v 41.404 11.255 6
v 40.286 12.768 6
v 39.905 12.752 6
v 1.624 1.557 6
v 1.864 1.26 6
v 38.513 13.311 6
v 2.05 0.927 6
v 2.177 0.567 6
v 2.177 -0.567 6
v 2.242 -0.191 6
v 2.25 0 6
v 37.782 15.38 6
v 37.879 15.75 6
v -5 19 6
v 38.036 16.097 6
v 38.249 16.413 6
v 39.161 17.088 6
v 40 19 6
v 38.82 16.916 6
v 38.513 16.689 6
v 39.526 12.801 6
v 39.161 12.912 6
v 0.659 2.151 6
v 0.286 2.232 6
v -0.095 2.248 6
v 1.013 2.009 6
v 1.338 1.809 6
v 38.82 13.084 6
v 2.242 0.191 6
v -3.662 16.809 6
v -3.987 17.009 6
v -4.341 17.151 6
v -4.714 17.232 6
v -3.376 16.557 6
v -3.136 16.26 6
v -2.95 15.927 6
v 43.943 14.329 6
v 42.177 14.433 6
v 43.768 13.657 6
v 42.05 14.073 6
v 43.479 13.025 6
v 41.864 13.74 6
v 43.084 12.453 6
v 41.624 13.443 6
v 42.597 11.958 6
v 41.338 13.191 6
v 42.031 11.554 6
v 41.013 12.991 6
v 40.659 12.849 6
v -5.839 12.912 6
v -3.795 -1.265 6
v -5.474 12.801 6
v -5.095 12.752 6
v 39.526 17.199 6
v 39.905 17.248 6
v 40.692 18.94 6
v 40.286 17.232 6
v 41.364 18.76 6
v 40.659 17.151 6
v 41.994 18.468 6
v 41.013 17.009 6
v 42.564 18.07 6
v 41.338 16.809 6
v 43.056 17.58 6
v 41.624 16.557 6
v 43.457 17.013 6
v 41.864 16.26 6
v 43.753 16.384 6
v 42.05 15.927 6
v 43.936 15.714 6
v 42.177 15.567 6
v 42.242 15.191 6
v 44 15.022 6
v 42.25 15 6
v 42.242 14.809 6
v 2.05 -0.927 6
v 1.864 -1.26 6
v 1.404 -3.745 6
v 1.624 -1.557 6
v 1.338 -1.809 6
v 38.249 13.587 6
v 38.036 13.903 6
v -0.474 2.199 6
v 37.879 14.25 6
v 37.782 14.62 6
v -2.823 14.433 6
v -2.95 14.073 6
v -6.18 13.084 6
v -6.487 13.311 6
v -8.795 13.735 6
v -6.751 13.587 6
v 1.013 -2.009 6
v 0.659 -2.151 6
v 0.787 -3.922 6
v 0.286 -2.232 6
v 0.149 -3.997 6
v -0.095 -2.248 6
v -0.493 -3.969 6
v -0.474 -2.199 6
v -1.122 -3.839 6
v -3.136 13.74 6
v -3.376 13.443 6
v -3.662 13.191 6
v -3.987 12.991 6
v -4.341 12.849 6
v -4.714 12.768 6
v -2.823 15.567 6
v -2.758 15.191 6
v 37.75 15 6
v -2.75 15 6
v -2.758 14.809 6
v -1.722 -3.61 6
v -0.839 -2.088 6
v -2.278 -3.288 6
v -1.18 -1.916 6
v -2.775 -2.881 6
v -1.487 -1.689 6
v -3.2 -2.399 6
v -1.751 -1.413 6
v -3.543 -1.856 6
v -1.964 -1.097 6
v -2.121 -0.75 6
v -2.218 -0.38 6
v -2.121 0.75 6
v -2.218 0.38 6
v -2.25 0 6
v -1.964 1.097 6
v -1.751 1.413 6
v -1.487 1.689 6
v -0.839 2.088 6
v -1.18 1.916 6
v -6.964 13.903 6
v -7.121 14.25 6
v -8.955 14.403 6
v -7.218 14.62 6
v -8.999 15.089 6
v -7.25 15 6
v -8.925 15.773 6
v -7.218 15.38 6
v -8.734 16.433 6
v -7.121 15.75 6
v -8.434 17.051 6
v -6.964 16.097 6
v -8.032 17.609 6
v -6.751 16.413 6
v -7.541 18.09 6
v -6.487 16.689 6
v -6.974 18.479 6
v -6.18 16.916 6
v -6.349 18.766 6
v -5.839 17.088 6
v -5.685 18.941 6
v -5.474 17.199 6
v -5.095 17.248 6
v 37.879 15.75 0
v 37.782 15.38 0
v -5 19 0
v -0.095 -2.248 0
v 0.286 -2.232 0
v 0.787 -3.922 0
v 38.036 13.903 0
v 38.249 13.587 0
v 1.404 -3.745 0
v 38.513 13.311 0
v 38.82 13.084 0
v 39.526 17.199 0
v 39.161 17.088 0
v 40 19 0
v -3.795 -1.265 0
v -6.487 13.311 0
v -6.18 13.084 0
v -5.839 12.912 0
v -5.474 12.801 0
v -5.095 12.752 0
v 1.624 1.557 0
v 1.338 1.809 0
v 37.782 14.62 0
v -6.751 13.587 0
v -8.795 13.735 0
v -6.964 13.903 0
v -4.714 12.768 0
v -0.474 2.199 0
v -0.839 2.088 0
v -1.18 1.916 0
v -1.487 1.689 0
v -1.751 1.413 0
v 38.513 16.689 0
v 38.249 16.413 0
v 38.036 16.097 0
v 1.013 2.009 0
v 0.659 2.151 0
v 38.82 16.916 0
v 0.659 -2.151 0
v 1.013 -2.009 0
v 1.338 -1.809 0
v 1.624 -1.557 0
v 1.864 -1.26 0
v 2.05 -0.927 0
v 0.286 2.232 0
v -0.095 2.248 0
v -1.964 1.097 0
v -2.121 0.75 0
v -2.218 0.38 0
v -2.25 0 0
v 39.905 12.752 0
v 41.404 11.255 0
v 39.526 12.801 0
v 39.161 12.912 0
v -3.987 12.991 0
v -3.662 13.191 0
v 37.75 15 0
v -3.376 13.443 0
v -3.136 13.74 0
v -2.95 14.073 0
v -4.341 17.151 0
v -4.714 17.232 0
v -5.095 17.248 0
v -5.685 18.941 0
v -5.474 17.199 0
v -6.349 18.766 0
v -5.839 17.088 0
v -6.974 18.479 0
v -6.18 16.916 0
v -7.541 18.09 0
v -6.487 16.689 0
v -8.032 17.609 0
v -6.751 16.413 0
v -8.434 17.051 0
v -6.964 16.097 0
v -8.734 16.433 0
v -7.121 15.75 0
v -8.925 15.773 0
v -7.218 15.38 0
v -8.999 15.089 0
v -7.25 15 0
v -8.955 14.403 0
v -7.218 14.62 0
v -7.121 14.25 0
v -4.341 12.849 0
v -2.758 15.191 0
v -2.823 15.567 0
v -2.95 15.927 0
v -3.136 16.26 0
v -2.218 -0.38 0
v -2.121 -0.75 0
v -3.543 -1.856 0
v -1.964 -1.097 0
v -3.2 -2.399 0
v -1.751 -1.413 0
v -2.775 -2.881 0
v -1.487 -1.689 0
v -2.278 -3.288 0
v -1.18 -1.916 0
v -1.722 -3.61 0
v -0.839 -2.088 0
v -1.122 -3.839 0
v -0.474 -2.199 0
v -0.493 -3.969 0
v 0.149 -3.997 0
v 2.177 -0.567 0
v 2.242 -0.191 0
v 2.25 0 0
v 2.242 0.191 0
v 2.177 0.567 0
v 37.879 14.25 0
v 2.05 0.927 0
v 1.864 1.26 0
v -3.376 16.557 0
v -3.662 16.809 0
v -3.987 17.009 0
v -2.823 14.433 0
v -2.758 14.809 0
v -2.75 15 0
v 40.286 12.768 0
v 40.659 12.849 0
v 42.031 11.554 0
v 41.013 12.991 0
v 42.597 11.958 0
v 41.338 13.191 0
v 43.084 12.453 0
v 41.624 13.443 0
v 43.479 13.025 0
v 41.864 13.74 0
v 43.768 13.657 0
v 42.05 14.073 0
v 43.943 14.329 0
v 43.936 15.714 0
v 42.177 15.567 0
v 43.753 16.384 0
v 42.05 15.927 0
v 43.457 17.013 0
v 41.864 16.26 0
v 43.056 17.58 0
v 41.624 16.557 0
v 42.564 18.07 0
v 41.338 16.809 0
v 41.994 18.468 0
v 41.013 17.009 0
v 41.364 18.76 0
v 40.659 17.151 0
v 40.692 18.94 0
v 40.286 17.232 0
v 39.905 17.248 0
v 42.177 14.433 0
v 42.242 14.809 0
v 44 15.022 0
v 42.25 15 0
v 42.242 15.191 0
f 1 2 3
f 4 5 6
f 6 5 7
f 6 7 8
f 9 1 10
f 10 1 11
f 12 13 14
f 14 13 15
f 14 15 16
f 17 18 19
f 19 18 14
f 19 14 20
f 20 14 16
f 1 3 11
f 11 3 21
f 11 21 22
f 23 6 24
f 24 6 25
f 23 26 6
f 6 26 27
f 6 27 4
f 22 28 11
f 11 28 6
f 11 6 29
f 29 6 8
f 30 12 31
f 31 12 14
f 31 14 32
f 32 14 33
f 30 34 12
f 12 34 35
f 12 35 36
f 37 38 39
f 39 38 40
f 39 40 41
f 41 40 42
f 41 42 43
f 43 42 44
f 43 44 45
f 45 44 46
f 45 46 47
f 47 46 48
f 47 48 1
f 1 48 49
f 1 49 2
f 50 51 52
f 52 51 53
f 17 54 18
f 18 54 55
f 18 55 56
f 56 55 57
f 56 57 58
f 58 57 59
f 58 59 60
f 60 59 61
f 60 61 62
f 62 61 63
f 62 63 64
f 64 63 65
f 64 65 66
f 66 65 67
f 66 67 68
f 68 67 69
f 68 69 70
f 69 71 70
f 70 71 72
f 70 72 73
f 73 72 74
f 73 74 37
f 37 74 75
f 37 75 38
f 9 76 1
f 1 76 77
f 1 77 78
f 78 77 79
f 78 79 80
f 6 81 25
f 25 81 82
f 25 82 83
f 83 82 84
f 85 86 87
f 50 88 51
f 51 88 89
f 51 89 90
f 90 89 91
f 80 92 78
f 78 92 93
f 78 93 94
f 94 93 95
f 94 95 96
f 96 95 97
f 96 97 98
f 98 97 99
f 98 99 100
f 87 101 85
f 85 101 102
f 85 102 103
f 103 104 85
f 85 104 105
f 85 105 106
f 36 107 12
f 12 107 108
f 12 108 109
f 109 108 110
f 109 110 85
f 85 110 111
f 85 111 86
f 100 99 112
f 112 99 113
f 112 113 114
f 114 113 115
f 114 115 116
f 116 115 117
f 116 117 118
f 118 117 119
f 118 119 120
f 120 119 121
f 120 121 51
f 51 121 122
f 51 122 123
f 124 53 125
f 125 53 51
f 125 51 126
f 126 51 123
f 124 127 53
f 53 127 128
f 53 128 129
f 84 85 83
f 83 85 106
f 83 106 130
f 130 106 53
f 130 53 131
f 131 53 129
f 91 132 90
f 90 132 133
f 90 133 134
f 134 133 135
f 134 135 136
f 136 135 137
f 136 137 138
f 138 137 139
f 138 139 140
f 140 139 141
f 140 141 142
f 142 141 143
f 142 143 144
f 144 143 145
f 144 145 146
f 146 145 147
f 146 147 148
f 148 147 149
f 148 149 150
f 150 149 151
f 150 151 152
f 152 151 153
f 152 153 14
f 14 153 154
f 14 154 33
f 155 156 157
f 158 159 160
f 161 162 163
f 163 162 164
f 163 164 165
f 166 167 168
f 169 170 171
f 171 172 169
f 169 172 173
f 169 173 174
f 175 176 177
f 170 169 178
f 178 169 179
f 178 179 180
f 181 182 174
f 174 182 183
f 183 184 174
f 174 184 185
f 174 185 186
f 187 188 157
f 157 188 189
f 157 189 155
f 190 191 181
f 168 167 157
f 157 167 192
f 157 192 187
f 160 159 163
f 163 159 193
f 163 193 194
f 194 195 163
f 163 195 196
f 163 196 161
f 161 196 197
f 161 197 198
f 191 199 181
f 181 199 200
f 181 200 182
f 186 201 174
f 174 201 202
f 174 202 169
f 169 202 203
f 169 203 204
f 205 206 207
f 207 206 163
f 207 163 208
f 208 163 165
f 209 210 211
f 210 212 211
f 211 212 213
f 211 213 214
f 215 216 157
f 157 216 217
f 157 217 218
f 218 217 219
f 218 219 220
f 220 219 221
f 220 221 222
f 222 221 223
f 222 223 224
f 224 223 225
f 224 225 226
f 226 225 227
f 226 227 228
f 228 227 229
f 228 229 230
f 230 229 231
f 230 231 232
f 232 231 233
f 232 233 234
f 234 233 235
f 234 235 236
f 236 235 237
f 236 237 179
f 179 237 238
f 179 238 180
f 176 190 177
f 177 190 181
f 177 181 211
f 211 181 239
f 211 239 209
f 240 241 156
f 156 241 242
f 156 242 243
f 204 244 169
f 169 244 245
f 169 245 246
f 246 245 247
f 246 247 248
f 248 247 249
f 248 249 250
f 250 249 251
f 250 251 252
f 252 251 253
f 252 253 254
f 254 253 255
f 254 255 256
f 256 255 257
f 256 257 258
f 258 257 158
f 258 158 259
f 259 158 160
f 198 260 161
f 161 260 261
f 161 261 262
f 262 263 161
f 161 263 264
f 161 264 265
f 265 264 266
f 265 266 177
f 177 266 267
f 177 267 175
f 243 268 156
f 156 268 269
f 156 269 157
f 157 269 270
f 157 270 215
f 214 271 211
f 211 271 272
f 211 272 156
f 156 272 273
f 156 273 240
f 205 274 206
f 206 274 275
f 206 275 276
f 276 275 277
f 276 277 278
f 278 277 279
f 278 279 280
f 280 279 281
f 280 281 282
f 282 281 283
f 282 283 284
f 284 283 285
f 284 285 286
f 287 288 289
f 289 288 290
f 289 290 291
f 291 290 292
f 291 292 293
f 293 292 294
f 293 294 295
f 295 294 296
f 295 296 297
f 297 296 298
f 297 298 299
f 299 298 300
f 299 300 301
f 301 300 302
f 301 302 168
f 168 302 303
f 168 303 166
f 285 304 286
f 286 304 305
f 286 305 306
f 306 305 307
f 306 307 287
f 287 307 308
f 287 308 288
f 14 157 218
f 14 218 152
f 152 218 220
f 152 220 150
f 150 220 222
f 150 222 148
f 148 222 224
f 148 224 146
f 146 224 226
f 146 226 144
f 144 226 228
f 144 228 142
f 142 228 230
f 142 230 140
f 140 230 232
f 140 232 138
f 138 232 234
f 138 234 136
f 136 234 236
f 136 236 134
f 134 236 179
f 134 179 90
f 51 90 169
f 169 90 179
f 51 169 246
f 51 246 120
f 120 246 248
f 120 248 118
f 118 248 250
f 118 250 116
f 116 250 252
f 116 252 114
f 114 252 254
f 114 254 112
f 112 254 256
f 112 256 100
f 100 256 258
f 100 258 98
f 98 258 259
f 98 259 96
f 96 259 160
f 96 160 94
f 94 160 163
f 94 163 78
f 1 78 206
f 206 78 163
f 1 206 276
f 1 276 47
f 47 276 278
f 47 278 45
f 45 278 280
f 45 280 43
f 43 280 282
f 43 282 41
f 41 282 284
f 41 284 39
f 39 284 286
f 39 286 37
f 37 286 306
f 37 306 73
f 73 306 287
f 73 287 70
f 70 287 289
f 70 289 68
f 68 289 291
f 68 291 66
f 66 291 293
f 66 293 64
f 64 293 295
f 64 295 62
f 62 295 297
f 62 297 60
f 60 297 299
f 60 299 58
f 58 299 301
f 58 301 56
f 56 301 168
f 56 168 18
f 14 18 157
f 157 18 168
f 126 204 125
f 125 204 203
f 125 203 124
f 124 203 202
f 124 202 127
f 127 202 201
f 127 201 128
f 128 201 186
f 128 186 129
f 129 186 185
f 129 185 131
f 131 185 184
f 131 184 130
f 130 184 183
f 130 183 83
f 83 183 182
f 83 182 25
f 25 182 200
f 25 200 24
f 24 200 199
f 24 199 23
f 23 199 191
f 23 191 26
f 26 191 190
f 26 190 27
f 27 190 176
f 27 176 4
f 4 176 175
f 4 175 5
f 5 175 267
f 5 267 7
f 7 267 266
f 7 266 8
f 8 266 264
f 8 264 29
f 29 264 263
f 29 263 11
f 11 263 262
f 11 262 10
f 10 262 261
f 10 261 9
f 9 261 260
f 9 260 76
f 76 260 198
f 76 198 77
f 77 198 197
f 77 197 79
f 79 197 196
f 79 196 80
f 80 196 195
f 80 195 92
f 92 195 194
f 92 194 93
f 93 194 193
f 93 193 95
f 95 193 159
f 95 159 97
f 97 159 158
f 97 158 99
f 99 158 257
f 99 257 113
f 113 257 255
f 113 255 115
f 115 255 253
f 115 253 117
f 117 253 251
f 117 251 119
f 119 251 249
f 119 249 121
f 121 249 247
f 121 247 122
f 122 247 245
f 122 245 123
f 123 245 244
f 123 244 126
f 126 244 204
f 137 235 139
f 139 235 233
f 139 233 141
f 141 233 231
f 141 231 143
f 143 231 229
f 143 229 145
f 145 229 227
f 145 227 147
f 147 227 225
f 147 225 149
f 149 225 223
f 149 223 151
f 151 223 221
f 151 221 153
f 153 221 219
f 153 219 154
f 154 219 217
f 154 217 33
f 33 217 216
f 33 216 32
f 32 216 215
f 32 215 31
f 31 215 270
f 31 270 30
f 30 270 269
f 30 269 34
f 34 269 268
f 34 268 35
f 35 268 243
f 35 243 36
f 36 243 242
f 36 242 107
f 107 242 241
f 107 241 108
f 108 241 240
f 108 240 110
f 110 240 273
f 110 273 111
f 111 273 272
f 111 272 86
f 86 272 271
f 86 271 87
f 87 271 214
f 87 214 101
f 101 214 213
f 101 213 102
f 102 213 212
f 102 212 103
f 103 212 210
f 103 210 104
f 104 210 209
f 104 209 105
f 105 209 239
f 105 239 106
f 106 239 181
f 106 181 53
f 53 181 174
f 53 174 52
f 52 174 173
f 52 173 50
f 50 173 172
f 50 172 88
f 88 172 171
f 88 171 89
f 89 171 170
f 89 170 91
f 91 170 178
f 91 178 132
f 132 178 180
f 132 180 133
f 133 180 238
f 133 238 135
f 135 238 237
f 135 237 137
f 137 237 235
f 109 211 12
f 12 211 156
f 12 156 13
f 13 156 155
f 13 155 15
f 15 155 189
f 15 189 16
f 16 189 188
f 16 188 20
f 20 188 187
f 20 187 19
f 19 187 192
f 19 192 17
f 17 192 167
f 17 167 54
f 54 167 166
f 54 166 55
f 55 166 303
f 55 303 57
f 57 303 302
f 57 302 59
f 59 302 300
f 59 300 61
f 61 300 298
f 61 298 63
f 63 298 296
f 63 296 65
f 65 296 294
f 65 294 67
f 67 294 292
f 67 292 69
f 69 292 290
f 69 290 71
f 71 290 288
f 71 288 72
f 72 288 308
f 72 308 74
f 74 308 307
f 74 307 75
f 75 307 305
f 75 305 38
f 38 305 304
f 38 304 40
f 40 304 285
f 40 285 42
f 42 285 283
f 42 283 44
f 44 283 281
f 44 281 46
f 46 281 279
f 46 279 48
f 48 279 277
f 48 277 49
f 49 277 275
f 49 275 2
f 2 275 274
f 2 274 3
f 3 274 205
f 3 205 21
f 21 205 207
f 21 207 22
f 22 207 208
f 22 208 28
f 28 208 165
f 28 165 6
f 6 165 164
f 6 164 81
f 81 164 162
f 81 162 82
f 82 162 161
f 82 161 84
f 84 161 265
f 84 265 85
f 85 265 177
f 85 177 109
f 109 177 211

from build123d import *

# Parameters (mm, degrees)
SKETCH1_R           = 2.25
BOSS_EXTRUDE1_DEPTH = 6


with BuildPart() as part:
    # Sketch1 → Boss-Extrude1 (new body)
    with BuildSketch(Plane.XY):
        with BuildLine():
            Line((-5, 19), (40, 19))
            ThreePointArc((40, 19), (43.9358142, 15.713699222), (41.404493766, 11.25468329))
            Line((41.404493766, 11.25468329), (1.404493766, -3.74531671))
            ThreePointArc((1.404493766, -3.74531671), (-1.722328125, -3.610205788), (-3.794733192, -1.264911064))
            Line((-3.794733192, -1.264911064), (-8.794733192, 13.735088936))
            ThreePointArc((-8.794733192, 13.735088936), (-8.244968741, 17.338841139), (-5, 19))
        make_face()
        Circle(SKETCH1_R, mode=Mode.SUBTRACT)
        with Locations((-5, 15)):
            Circle(SKETCH1_R, mode=Mode.SUBTRACT)
        with Locations((40, 15)):
            Circle(SKETCH1_R, mode=Mode.SUBTRACT)
    extrude(amount=BOSS_EXTRUDE1_DEPTH)


solid = part.part
